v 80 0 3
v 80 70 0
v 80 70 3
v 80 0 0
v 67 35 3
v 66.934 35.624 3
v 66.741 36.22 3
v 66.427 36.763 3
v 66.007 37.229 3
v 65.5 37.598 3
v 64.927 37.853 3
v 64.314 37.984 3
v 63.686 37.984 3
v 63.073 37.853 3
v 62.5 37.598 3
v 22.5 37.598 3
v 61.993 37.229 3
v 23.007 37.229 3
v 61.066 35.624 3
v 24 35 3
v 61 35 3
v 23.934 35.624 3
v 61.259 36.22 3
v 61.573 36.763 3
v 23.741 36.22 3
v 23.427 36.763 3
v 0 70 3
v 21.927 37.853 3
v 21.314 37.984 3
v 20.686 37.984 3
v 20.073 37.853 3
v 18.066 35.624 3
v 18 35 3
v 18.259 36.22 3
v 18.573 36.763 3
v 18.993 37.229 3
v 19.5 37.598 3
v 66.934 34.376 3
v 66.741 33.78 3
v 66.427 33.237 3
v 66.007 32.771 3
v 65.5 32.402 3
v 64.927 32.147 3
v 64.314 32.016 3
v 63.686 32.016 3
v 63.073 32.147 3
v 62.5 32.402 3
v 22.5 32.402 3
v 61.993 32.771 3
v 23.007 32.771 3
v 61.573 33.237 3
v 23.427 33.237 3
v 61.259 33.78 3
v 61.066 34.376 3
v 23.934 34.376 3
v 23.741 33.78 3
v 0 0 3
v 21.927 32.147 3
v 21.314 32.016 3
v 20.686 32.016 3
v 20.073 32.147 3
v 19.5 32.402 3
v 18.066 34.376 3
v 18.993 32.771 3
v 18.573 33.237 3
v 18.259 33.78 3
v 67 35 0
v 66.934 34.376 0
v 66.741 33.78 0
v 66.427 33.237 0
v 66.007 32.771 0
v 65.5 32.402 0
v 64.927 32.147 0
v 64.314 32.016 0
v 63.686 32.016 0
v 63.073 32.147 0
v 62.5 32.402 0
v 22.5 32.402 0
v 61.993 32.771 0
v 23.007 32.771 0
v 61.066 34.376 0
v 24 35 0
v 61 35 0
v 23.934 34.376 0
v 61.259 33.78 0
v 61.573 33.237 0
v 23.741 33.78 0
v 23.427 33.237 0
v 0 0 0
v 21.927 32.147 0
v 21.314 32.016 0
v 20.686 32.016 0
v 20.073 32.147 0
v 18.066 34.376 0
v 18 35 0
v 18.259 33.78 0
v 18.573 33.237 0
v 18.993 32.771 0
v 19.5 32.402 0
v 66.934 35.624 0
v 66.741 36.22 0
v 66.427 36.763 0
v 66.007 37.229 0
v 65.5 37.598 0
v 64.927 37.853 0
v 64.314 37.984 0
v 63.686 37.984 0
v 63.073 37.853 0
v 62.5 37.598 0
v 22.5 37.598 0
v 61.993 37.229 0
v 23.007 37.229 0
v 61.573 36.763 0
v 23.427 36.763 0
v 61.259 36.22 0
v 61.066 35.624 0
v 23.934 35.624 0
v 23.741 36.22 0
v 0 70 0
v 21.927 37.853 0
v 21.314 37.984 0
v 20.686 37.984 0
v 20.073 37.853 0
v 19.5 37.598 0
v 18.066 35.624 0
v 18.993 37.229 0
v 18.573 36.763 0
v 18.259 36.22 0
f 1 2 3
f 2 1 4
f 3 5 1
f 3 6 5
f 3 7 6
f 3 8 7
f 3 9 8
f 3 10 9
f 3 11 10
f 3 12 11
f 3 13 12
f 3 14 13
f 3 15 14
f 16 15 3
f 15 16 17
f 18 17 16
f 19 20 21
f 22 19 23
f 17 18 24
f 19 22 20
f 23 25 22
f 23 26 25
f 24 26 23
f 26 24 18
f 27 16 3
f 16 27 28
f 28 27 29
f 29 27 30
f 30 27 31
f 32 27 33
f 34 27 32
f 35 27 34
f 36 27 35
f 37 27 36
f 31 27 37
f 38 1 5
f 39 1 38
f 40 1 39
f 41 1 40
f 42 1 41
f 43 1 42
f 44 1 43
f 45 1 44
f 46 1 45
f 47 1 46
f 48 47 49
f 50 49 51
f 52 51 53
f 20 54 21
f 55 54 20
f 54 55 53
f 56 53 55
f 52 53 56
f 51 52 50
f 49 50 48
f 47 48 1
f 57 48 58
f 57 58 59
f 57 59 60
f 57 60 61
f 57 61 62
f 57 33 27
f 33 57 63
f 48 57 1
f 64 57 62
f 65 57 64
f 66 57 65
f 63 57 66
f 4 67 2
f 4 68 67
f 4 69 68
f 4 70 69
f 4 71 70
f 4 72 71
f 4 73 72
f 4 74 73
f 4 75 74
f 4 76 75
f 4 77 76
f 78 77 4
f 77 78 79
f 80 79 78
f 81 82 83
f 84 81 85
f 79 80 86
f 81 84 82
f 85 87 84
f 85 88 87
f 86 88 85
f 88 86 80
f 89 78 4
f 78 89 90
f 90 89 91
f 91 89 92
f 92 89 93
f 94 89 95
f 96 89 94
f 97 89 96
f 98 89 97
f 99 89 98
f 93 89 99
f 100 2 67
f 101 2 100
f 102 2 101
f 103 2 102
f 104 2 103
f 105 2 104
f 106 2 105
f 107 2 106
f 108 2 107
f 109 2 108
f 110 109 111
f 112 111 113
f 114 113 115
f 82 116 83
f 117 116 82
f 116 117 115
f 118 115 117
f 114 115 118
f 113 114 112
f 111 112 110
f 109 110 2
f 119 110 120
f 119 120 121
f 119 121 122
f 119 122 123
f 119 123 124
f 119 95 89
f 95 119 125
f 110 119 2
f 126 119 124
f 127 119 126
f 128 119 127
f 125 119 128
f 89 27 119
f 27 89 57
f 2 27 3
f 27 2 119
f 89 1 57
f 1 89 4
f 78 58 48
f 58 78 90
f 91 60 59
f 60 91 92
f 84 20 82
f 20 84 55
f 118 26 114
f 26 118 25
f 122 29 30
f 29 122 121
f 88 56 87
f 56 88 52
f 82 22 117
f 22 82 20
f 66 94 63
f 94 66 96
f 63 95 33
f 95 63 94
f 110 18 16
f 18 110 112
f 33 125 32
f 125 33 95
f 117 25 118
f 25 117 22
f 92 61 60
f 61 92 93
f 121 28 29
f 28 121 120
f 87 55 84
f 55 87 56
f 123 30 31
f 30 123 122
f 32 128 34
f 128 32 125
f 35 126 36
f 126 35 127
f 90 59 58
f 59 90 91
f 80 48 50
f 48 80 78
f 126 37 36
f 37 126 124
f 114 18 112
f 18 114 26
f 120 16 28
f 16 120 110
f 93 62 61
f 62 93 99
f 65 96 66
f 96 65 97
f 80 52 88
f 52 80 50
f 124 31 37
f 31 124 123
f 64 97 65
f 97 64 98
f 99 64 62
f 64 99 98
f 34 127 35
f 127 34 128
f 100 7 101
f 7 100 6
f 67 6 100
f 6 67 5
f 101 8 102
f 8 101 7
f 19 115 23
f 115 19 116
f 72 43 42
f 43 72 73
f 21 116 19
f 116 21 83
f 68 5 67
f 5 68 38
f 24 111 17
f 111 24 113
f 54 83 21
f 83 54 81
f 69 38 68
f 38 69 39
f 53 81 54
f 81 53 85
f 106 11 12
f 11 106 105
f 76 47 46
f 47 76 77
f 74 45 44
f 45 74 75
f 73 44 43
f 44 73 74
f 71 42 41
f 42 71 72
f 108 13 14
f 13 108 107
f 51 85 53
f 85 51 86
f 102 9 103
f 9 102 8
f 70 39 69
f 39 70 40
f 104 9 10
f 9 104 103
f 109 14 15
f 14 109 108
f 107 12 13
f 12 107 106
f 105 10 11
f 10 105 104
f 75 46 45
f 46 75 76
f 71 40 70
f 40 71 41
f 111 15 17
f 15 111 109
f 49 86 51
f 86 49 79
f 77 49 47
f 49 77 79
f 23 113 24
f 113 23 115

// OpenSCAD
// Define variables for the dimensions and hole positions in millimeters
length = 80;
width = 70;
height = 3;
hole_radius = 3;
hole_x1 = 21; // Inverted X and Y positions
hole_y1 = 35; // Inverted X and Y positions
hole_x2 = 64; // Inverted X and Y positions
hole_y2 = 35; // Inverted X and Y positions

// Define a module for the holes with parameters
module hole(translated_position_X, translated_position_Y) {
    translate([translated_position_X, translated_position_Y, 0]) cylinder(r=hole_radius, h=height, $fn=30);
}

// Subtract both holes from the rectangle
difference() {
    // Generate the rectangle with specific length and width dimensions
    cube([length, width, height]);

    // Create the first hole
    hole(translated_position_X=hole_x1, translated_position_Y=hole_y1);

    // Create the second hole
    hole(translated_position_X=hole_x2, translated_position_Y=hole_y2);
}
